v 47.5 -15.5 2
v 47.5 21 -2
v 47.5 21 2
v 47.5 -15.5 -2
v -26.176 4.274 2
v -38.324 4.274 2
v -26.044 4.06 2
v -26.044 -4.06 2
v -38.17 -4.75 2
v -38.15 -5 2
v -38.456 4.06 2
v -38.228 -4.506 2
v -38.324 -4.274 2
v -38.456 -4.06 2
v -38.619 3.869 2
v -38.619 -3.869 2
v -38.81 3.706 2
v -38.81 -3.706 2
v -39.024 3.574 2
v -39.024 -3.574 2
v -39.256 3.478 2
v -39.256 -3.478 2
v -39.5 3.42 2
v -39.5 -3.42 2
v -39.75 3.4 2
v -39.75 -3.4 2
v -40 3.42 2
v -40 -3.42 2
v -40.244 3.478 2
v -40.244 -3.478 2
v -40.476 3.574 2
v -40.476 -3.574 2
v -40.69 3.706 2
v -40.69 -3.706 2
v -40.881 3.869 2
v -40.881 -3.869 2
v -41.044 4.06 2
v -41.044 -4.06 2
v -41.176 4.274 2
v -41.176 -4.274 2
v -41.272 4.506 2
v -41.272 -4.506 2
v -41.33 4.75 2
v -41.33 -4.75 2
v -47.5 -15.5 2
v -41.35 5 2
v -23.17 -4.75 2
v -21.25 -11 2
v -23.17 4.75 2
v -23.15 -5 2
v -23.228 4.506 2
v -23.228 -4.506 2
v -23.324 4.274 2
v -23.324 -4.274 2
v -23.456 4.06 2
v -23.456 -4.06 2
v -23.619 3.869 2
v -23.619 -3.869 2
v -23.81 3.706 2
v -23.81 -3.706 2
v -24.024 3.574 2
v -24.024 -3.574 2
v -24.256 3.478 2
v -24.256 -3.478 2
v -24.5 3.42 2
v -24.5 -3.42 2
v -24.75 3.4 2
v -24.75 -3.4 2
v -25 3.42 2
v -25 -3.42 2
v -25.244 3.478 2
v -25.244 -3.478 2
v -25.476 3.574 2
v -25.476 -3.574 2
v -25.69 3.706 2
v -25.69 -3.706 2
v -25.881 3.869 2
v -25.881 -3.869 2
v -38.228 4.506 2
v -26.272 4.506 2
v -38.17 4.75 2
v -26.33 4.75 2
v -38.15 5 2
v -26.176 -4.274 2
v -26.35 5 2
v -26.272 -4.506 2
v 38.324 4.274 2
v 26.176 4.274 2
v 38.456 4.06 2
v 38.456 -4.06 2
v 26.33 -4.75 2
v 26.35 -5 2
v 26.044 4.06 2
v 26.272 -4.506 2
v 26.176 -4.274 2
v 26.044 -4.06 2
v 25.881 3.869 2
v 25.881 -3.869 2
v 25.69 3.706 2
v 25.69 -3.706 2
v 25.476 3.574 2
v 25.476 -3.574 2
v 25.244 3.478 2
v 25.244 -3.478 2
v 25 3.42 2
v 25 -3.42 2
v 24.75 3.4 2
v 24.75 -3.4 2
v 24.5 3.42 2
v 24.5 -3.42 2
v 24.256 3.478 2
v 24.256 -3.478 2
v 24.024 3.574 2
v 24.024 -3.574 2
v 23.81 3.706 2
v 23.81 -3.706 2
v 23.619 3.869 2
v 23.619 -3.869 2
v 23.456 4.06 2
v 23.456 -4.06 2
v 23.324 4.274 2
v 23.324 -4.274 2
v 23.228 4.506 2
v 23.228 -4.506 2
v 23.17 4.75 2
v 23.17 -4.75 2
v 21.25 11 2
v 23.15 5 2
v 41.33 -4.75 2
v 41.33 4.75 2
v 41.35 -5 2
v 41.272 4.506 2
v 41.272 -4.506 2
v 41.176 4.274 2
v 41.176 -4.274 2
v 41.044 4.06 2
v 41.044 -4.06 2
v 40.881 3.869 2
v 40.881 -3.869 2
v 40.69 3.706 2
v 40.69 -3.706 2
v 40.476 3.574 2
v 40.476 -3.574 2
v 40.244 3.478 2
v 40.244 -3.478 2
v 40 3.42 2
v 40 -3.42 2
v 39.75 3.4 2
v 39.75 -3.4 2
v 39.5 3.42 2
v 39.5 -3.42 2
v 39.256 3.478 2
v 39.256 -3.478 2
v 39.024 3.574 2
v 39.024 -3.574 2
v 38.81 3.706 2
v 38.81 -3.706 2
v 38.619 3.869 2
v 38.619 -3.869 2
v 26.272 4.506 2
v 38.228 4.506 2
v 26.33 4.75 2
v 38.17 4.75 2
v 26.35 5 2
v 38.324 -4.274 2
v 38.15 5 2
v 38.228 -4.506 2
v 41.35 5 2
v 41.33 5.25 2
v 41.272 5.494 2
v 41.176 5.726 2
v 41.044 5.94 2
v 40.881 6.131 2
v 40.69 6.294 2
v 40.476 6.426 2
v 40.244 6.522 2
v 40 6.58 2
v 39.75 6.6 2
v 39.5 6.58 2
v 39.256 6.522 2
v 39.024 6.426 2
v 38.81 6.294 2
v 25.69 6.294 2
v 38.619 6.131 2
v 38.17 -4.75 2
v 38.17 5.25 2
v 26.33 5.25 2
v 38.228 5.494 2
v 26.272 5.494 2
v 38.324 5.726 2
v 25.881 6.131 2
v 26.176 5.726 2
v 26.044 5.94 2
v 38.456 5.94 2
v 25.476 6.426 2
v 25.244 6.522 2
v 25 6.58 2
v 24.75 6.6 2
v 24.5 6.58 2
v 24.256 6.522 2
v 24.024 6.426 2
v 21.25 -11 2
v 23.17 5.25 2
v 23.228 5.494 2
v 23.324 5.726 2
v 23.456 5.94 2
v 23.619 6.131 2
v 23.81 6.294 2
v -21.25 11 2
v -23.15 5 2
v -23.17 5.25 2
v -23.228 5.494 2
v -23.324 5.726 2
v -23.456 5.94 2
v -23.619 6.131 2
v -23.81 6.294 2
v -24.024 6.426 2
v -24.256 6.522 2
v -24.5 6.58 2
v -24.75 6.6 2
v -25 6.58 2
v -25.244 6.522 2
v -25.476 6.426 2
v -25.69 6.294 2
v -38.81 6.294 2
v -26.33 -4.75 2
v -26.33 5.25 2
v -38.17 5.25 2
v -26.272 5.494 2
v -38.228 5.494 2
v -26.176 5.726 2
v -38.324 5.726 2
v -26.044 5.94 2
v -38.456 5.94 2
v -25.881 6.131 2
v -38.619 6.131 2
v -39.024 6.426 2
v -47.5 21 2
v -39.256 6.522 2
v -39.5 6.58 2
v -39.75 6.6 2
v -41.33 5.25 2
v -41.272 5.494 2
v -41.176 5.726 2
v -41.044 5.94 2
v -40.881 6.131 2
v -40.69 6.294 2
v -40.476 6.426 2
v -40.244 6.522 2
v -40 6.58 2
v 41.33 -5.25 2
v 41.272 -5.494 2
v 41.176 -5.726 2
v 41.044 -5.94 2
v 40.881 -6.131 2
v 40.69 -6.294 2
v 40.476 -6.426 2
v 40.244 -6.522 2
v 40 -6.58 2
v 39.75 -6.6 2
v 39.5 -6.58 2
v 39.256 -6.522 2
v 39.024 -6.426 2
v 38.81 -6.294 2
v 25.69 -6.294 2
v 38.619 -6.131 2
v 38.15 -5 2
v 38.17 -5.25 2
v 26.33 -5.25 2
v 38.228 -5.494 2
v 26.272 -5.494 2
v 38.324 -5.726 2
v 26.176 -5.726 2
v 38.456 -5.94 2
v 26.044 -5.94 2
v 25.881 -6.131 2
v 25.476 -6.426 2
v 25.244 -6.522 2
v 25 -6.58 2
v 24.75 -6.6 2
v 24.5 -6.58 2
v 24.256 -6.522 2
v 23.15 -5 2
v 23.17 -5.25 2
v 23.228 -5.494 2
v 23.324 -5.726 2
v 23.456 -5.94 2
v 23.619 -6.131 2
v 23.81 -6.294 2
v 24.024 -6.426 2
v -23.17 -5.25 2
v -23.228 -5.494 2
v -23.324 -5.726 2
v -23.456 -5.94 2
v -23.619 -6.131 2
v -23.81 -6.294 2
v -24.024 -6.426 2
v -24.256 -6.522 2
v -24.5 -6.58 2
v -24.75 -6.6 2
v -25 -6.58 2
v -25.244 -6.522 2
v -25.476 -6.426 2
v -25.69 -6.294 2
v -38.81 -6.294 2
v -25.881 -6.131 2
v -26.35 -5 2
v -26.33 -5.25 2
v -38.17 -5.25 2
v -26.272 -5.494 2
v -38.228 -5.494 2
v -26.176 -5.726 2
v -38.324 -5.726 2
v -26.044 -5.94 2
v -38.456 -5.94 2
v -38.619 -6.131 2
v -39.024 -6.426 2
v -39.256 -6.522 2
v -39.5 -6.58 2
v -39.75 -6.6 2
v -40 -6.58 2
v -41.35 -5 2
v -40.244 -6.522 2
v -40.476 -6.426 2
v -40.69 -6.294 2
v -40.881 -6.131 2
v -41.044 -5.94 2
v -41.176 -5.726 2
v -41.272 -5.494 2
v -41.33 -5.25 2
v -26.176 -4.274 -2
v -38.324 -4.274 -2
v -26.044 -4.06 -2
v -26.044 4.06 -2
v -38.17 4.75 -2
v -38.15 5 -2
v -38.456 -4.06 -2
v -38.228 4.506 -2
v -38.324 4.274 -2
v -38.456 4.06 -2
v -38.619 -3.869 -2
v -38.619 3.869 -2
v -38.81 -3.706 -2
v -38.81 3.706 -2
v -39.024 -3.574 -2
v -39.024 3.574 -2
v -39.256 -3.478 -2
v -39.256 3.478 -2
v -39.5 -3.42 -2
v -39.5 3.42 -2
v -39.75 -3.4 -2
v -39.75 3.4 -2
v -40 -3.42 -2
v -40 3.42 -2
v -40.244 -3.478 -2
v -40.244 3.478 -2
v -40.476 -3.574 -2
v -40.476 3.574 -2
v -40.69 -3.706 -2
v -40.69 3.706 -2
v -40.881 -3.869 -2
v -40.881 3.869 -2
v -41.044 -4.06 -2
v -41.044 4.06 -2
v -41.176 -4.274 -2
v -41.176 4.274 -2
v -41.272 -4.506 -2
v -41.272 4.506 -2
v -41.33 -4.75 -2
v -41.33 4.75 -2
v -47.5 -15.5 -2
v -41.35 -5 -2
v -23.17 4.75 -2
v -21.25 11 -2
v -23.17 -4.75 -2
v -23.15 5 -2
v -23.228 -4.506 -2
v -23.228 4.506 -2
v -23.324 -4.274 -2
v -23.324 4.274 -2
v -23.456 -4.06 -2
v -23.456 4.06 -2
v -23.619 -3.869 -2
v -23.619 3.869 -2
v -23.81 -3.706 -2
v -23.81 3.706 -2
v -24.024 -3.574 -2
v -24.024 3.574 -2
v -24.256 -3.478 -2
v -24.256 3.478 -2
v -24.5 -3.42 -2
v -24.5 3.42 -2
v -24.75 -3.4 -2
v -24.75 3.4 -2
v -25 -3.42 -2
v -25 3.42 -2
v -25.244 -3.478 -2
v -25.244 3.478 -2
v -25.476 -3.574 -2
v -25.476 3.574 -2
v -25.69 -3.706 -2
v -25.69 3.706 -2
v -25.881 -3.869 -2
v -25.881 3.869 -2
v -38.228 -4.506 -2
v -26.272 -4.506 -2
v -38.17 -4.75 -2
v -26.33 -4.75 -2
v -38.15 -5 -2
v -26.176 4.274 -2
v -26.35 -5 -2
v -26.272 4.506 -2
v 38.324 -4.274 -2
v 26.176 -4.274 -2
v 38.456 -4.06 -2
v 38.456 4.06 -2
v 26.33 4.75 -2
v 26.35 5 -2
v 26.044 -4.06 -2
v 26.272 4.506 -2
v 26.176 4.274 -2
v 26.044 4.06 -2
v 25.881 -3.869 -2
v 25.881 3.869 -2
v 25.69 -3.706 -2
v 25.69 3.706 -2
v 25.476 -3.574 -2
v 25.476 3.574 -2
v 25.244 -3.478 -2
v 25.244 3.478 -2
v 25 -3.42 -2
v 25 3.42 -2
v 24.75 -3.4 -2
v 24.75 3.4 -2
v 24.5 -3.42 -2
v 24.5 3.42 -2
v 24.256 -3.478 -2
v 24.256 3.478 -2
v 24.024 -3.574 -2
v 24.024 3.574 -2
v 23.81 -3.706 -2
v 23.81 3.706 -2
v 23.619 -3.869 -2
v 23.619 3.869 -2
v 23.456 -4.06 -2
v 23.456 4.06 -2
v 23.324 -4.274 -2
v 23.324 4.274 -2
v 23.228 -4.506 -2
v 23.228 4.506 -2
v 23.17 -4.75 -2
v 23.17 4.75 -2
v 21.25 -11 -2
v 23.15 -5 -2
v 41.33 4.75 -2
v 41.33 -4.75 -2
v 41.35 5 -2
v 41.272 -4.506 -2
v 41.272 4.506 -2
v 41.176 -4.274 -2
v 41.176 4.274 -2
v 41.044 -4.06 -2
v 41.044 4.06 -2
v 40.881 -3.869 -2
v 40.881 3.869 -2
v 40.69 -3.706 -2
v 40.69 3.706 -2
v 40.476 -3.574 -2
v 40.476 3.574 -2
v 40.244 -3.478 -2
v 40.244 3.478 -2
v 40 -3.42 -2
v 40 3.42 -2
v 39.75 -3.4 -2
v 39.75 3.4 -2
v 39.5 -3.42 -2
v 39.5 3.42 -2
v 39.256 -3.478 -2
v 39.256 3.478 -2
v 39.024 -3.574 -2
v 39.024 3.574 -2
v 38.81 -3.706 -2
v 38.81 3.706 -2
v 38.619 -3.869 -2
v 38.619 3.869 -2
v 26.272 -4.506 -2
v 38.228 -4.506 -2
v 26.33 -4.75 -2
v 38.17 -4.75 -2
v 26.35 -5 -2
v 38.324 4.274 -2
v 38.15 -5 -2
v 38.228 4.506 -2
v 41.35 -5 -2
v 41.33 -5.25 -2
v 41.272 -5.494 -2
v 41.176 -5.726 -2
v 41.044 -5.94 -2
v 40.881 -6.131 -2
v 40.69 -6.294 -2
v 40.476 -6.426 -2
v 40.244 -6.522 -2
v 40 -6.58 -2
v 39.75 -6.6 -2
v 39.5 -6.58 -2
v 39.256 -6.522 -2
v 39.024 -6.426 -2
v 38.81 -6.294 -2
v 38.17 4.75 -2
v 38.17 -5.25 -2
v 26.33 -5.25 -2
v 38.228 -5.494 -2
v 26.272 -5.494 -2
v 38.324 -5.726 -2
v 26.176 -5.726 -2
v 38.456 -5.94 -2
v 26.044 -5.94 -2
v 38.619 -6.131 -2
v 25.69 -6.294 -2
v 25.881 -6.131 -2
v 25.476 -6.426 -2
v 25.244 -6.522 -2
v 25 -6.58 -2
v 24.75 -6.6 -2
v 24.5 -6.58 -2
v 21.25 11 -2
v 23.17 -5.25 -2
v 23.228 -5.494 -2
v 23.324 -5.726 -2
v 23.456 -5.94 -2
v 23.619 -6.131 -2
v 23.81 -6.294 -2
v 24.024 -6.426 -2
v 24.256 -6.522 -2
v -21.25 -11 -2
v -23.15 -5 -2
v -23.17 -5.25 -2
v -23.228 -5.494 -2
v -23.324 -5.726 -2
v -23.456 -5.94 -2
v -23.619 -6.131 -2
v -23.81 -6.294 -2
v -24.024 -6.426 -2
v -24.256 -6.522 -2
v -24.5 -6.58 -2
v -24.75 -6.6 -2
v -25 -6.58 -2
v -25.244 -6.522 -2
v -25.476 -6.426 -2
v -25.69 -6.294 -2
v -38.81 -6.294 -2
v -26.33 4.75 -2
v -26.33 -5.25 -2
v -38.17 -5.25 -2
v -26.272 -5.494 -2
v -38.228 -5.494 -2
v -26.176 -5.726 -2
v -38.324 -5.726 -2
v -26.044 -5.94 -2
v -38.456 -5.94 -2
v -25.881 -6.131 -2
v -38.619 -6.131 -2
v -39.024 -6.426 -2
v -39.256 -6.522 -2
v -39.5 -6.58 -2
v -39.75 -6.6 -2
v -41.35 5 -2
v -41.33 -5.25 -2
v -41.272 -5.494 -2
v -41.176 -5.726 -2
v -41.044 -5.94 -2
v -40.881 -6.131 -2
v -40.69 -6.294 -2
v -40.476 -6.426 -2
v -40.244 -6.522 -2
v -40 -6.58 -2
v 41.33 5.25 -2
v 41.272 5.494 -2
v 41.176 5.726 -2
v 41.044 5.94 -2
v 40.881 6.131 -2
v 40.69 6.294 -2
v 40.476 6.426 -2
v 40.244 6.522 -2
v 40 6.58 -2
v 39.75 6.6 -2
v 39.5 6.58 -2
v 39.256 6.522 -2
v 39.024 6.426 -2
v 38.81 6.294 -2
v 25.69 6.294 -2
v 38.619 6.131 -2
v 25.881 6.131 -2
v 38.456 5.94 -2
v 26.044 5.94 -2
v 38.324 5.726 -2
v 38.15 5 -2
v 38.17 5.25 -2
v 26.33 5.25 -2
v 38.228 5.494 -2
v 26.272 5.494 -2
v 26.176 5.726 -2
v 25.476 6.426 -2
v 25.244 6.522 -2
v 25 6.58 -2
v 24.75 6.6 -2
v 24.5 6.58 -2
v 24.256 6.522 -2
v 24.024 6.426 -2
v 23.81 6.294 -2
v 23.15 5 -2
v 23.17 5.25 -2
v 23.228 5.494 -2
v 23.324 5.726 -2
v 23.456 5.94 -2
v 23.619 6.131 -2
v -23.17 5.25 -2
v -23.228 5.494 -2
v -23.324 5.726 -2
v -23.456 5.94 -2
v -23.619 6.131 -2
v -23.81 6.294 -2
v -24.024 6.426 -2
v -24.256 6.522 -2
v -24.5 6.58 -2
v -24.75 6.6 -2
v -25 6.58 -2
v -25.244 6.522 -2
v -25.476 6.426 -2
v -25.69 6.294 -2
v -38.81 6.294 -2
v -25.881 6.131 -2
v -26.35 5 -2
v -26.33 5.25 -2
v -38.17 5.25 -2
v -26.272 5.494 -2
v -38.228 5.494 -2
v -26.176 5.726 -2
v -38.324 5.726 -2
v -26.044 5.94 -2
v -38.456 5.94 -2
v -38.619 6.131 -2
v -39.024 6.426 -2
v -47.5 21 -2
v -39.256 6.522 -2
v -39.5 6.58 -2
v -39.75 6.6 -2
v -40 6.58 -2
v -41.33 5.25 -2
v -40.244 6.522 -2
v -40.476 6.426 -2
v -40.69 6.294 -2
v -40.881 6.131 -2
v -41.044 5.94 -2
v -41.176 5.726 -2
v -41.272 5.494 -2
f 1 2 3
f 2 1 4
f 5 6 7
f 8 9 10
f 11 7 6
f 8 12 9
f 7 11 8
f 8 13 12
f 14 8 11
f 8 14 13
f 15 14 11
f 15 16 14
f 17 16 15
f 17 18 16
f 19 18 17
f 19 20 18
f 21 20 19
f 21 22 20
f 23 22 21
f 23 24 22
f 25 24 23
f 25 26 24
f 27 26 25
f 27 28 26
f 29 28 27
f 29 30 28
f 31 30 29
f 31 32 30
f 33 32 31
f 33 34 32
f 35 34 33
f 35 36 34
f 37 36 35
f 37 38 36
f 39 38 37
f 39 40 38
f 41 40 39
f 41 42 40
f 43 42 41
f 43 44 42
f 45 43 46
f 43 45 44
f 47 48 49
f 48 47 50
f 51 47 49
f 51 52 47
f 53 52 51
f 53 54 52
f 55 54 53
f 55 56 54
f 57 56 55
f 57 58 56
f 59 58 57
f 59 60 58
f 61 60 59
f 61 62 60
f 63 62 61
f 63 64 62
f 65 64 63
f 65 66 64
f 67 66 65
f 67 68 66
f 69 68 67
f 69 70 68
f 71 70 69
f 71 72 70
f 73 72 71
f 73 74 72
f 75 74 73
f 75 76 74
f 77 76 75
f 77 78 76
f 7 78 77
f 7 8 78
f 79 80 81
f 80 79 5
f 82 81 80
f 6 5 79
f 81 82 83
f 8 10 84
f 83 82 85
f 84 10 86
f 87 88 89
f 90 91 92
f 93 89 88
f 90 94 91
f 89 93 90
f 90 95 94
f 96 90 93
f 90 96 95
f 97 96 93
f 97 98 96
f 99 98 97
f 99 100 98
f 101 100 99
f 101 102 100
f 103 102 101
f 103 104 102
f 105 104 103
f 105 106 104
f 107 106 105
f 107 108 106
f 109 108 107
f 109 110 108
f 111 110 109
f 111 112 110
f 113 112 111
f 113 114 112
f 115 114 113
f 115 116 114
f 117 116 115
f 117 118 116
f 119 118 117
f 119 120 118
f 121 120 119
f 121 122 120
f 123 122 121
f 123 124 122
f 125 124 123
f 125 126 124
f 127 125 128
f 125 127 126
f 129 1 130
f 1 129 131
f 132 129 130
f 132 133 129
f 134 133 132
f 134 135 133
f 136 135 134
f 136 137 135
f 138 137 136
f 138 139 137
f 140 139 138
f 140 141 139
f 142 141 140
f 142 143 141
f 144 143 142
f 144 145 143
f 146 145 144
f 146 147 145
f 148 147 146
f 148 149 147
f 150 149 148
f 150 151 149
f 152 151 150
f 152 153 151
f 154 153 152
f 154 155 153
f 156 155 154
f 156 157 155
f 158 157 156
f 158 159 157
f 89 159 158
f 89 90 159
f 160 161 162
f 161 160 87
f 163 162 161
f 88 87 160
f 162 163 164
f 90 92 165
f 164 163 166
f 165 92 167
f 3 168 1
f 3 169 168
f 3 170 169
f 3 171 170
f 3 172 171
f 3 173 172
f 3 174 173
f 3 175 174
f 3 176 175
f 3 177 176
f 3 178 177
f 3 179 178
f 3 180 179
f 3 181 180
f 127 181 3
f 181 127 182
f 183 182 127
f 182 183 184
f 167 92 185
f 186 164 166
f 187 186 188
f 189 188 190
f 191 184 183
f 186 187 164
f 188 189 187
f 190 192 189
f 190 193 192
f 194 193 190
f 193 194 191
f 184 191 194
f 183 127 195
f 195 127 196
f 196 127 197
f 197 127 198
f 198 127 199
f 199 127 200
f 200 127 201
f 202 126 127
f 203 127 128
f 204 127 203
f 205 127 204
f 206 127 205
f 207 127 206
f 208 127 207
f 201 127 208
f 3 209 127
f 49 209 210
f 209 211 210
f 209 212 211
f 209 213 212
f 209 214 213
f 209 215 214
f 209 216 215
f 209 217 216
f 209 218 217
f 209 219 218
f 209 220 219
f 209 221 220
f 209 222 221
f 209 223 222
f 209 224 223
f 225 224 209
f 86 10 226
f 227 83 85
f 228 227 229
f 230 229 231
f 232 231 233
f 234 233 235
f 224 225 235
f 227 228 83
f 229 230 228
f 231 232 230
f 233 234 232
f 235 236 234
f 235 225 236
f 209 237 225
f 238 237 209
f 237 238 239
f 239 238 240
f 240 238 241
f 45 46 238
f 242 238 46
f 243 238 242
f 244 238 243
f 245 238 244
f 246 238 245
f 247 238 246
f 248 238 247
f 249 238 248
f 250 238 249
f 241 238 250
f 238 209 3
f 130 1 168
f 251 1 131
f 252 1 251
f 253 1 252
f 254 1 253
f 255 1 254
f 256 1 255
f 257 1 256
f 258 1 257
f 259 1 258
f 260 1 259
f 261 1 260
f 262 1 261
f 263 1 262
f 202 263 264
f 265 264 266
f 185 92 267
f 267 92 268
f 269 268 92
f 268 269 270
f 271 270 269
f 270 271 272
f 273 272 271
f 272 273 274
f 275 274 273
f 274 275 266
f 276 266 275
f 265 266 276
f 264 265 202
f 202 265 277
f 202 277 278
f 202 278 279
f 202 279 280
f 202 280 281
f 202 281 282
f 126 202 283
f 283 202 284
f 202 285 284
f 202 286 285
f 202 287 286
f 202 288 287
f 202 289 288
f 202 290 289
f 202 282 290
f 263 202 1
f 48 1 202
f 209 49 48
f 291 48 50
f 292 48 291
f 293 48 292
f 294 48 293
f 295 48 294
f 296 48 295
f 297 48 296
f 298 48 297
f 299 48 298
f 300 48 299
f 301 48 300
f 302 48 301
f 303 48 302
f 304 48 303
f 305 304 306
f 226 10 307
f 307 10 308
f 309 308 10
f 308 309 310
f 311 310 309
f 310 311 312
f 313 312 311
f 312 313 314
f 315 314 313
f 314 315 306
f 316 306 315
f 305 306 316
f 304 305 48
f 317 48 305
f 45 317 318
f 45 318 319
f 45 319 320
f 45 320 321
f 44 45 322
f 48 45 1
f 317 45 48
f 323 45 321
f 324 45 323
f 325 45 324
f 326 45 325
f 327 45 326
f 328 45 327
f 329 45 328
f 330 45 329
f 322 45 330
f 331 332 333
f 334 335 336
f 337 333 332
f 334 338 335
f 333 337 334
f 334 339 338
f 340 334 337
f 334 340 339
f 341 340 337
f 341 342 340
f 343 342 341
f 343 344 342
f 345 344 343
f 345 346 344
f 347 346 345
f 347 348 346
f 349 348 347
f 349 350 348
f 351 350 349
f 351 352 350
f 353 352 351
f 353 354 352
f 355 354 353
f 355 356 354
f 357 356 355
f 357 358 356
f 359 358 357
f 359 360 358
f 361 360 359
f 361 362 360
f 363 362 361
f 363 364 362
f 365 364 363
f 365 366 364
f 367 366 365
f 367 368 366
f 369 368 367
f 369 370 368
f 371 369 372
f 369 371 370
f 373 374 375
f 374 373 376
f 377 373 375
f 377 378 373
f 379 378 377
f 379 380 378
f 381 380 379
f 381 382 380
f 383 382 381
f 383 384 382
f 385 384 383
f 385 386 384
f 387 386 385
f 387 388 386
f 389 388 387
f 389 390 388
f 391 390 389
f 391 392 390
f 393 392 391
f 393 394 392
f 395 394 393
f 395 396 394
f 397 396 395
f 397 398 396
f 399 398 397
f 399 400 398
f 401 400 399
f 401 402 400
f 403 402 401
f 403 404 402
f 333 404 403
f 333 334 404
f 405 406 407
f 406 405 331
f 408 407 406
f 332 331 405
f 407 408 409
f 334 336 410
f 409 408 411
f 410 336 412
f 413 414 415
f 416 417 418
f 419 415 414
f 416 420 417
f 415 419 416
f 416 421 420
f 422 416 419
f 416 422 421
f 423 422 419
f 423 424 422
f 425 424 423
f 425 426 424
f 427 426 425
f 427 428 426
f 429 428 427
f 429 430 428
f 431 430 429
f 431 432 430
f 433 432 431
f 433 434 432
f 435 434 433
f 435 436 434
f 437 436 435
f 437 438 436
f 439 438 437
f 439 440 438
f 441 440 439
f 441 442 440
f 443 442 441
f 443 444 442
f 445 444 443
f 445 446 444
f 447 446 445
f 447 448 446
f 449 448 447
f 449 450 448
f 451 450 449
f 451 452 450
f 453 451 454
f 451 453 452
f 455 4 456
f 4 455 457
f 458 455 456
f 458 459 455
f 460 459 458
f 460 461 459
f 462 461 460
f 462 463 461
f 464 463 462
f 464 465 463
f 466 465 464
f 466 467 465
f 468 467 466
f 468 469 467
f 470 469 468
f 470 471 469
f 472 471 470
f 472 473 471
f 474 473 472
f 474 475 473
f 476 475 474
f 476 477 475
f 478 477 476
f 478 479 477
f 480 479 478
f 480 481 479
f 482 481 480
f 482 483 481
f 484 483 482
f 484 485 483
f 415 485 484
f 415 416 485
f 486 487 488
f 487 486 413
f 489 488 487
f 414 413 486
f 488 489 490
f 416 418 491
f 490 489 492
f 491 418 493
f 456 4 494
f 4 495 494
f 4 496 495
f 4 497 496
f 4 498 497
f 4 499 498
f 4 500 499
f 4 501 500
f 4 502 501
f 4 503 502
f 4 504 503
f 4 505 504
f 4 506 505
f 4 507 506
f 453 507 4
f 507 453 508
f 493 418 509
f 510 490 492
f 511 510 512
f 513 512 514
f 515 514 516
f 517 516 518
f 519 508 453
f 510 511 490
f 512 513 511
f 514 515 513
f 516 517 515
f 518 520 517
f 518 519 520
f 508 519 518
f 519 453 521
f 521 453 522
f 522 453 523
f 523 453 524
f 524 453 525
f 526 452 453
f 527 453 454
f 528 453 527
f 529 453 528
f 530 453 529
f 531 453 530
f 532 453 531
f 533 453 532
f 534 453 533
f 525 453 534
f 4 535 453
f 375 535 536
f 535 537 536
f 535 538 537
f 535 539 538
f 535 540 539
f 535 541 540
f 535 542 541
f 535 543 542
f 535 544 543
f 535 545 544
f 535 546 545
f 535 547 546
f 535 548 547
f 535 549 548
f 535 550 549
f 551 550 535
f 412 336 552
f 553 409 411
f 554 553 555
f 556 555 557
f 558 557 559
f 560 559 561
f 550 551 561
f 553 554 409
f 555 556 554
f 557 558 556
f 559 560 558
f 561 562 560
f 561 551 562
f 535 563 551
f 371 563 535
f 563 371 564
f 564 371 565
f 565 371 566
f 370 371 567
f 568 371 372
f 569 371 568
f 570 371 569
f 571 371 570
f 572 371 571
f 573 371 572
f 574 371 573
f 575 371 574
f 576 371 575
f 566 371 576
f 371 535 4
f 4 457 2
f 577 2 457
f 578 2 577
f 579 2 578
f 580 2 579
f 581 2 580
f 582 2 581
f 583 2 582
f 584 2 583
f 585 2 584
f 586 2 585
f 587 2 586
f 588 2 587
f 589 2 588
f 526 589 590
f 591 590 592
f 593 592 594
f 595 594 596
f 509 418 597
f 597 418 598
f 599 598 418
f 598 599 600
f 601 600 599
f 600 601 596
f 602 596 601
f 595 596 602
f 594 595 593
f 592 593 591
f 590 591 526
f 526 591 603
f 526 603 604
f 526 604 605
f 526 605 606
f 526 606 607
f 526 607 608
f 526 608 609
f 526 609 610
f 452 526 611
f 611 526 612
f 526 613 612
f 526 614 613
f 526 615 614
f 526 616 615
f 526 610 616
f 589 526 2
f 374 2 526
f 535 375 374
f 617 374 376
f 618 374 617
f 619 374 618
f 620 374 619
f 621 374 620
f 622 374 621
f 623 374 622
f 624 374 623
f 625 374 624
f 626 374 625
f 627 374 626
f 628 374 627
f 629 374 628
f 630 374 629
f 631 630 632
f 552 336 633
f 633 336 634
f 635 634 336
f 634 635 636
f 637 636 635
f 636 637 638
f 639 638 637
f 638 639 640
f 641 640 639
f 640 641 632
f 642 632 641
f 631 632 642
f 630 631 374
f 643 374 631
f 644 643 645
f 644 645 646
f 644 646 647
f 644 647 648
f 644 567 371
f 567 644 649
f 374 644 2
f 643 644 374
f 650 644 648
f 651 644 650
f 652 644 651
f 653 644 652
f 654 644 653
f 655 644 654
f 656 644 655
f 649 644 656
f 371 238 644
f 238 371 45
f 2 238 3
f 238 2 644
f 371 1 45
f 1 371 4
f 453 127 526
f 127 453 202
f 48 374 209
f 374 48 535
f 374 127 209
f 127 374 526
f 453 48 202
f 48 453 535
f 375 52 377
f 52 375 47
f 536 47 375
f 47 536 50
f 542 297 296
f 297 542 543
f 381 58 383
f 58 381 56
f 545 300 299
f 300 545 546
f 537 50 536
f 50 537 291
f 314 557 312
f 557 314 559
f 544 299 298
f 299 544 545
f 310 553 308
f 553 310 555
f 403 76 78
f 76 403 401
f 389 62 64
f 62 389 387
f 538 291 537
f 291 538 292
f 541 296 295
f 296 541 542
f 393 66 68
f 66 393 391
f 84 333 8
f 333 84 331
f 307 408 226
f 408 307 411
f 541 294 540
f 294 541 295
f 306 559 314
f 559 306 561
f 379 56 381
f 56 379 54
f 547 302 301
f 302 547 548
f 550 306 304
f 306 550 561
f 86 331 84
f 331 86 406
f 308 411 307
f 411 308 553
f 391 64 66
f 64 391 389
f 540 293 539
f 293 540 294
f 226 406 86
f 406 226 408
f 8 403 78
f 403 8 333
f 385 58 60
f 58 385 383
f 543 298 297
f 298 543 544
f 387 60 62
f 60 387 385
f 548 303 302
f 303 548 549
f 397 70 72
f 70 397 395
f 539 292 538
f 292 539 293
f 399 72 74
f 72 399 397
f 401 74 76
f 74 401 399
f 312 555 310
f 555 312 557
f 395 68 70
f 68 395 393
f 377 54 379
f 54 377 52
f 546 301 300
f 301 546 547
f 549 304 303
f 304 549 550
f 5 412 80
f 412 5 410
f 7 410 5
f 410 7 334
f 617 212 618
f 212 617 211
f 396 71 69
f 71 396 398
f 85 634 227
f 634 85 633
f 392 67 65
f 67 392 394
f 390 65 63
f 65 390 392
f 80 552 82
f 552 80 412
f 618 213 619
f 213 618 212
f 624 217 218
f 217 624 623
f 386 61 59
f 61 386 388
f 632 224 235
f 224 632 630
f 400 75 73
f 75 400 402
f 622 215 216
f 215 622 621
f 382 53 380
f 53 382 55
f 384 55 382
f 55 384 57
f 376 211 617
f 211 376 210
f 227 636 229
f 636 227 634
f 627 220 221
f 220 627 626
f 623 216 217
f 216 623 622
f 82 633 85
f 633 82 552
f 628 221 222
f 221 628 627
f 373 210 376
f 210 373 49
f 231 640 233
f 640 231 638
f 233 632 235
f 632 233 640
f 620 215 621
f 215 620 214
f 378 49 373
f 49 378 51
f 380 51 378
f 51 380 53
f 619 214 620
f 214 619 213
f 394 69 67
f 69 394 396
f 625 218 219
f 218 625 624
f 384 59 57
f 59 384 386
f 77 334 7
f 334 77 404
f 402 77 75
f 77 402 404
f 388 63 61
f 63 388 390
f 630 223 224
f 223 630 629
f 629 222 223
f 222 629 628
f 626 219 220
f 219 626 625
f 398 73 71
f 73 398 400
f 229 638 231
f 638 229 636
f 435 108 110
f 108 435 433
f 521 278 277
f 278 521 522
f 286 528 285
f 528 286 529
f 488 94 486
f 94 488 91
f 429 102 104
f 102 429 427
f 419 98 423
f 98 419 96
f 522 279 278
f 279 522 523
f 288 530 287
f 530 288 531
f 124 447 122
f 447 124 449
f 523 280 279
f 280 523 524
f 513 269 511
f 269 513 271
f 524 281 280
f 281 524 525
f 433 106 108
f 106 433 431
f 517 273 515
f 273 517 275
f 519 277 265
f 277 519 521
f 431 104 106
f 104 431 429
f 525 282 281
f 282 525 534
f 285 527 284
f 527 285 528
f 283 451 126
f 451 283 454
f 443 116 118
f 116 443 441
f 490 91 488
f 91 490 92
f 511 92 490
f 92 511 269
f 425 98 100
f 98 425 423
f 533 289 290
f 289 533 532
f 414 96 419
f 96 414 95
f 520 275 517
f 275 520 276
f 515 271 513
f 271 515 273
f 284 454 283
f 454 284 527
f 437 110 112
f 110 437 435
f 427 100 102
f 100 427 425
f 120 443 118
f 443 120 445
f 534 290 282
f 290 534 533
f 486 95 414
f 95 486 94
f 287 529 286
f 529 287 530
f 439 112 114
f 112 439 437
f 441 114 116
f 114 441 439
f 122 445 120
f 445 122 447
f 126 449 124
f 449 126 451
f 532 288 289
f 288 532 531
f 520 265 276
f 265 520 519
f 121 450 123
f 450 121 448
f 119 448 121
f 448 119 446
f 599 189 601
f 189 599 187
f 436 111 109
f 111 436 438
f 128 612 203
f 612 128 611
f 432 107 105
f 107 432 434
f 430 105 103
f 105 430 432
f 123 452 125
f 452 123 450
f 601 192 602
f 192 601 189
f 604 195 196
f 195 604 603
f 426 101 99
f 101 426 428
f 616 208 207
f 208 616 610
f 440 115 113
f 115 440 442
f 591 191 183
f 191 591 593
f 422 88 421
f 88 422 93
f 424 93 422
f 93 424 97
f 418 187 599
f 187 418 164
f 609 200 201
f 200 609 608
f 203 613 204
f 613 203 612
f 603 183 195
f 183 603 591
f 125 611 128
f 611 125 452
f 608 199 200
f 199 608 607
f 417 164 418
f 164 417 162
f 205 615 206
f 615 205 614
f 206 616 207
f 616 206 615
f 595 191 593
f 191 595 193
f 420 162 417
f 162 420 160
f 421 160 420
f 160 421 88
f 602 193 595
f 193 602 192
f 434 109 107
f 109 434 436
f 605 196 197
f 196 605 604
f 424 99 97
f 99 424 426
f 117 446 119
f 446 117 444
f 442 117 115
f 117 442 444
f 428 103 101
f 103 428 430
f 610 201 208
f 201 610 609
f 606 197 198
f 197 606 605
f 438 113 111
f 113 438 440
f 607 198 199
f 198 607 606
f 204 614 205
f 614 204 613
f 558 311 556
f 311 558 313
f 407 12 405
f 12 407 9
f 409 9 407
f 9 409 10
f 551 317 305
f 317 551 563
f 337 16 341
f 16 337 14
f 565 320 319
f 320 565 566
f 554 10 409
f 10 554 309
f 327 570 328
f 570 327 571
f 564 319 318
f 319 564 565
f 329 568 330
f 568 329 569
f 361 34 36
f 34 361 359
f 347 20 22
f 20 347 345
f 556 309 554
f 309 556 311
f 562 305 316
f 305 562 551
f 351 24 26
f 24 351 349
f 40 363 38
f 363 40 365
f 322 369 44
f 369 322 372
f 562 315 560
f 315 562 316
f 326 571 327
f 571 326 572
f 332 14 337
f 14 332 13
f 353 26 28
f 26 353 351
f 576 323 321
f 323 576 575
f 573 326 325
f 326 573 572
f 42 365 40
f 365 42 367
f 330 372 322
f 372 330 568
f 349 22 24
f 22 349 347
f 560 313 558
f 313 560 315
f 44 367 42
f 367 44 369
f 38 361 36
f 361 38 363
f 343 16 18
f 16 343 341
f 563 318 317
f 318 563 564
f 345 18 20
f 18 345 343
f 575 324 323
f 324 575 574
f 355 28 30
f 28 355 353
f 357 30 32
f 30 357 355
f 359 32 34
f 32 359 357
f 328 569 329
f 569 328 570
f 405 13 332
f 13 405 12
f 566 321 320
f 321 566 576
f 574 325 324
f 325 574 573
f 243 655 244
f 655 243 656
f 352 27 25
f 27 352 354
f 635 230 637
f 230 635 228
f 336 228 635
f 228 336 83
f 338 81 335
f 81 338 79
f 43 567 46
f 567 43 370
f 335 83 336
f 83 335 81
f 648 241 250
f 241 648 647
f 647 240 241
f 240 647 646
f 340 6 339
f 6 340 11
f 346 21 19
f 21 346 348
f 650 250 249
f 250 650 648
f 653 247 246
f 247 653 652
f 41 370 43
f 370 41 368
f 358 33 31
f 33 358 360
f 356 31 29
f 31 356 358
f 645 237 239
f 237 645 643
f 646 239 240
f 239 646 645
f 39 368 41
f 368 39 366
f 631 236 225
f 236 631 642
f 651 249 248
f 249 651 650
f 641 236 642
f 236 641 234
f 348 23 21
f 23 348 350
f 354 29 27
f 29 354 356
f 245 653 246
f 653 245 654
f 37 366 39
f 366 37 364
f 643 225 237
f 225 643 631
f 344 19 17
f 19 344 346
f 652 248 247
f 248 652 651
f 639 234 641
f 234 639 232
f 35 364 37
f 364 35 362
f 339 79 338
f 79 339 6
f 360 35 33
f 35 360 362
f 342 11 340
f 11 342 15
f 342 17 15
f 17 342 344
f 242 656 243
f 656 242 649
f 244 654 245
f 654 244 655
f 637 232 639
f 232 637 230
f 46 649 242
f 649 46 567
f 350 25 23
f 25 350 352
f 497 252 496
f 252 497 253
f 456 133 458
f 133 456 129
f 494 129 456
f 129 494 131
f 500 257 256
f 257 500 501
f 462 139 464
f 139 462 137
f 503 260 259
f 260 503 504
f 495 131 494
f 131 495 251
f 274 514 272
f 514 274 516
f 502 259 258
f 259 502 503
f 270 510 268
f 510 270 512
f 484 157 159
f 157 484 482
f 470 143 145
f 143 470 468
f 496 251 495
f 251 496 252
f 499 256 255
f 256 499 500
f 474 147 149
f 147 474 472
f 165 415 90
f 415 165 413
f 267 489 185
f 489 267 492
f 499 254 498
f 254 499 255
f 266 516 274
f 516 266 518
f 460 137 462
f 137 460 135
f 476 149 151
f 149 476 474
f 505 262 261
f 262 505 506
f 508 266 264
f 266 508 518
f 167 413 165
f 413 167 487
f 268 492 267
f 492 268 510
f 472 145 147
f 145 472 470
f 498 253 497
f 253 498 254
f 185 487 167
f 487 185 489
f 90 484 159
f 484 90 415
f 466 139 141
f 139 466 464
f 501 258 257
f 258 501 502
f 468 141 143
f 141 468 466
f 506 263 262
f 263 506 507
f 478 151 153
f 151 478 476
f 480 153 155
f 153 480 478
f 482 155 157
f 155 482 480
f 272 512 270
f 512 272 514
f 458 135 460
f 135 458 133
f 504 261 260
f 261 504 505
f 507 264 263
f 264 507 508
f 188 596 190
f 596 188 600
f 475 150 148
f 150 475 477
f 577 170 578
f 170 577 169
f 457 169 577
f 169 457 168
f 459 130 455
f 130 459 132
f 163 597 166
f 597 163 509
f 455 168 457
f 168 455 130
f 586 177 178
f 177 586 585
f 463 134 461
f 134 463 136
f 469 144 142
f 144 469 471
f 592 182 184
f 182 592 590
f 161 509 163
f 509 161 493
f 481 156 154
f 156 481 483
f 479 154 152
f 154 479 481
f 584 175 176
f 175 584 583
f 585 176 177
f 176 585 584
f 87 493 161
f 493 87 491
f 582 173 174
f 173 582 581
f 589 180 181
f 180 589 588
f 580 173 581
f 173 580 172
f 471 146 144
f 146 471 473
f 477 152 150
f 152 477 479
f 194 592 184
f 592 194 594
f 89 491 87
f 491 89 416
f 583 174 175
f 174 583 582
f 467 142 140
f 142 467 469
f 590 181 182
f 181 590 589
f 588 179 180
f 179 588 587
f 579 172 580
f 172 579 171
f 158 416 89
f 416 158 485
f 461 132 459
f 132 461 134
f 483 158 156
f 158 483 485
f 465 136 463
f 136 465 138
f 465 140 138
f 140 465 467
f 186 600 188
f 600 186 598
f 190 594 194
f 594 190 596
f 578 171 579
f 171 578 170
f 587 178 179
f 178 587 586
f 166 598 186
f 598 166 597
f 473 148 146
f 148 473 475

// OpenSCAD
module pepernoten_servo_aansluiting() {
    difference() {
        
        
        union() {
            // Montageplaat
            translate([-65/2-15, -31/2, -4/2])
                cube([65+30, 31+5.5, 4]);

            
            translate([-65/2, 0, -2]){
                cube([65, 26-10, 4], center=false);
            }
            //translate([-65/2, 22-10+4, -2]){
            //    cube([35, 15, 8], center=false);
            //}


        }    
        

        // Opening voor servo body
        translate([0, 0, 0])
            cube([42.5, 22, 10], center=true);

        // 4 montagegaten
        translate([-49.5/2, -10/2, 0])
            cylinder(h=10, d=3.2, center=true, $fn=40);

        translate([-49.5/2,  10/2, 0])
            cylinder(h=10, d=3.2, center=true, $fn=40);

        translate([ 49.5/2, -10/2, 0])
            cylinder(h=10, d=3.2, center=true, $fn=40);

        translate([ 49.5/2,  10/2, 0])
            cylinder(h=10, d=3.2, center=true, $fn=40);


        // gaten voor op ander stuk
        translate([ -49.5/2-15, -10/2, 0])
            cylinder(h=10, d=3.2, center=true, $fn=40);

        translate([ -49.5/2-15,  10/2, 0])
            cylinder(h=10, d=3.2, center=true, $fn=40);

        translate([ 49.5/2+15, -10/2, 0])
            cylinder(h=10, d=3.2, center=true, $fn=40);

        translate([ 49.5/2+15,  10/2, 0])
            cylinder(h=10, d=3.2, center=true, $fn=40);
        

    }
}

pepernoten_servo_aansluiting();
